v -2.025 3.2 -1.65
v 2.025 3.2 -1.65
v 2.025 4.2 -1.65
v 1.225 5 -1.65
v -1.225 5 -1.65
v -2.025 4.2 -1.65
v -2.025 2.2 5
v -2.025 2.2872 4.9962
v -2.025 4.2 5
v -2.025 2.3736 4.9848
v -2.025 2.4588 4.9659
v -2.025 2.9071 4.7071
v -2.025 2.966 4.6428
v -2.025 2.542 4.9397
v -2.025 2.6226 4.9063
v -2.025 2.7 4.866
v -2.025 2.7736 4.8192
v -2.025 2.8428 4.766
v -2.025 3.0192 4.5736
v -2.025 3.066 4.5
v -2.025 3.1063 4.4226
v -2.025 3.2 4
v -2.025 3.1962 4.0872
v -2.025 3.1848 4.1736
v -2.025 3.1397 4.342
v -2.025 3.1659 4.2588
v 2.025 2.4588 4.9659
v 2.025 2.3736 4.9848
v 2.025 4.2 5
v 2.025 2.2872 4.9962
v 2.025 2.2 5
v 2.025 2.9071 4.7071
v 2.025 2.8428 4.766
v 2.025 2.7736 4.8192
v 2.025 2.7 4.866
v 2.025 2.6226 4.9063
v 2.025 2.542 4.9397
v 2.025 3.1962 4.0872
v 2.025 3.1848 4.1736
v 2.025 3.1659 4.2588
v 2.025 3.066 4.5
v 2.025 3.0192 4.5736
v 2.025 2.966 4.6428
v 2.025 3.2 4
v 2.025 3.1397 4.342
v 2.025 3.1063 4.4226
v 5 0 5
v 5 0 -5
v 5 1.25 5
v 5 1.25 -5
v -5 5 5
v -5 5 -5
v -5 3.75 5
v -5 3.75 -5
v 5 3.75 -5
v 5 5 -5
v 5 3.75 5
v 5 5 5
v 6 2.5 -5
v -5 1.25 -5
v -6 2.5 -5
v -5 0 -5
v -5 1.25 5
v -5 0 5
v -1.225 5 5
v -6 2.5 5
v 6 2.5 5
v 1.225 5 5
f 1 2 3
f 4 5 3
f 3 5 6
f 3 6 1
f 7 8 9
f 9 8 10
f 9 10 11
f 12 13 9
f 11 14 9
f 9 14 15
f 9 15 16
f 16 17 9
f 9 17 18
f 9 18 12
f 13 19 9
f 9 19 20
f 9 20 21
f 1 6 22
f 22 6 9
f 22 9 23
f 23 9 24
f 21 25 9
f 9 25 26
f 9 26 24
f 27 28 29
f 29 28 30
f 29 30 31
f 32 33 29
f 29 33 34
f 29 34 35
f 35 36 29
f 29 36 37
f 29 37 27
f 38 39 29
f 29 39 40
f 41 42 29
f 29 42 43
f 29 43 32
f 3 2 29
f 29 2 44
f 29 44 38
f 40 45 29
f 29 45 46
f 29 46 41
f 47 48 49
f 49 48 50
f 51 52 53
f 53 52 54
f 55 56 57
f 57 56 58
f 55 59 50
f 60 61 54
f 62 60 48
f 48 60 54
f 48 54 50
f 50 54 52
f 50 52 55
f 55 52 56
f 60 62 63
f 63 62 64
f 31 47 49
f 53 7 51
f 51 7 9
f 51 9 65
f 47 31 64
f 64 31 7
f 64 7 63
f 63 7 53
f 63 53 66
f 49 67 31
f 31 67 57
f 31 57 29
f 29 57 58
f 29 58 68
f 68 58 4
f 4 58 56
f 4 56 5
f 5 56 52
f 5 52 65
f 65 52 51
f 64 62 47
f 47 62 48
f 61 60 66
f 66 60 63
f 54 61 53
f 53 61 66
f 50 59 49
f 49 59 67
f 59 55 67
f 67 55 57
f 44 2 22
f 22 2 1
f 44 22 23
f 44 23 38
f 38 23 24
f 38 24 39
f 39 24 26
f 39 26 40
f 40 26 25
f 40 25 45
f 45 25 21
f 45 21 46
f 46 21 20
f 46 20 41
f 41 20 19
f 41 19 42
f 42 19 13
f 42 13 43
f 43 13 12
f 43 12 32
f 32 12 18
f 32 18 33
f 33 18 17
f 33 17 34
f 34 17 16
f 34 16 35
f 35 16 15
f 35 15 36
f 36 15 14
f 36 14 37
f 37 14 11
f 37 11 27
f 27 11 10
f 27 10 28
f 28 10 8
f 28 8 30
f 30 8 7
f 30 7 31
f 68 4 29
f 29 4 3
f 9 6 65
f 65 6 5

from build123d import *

# Parameters (mm, degrees)
SKETCH_1_W          = 10
SKETCH_1_H          = 10
EXTRUDE_1_DEPTH     = 5
EXTRUDE_2_DEPTH     = 10
SKETCH_3_W          = 4.05
SKETCH_3_H          = 3.3
CUT_EXTRUDE_1_DEPTH = 1.8
SKETCH_4_W          = 4.05
SKETCH_4_H          = 1.8
CUT_EXTRUDE_2_DEPTH = 11.257801909
FILLET_1_R          = 1
EXTRUDE_3_DEPTH     = 6.65


with BuildPart() as part:
    # 草图1 → 凸台-拉伸1 (new body)
    with BuildSketch(Plane(origin=(0, 0, 0), x_dir=(1, 0, 0), z_dir=(0, 1, 0))):
        Rectangle(SKETCH_1_W, SKETCH_1_H)
    extrude(amount=EXTRUDE_1_DEPTH)

    # 草图2 → 凸台-拉伸2 (add)
    with BuildSketch(Plane(origin=(0, 0, -5), x_dir=(-1, 0, 0), z_dir=(0, 0, -1))):
        Polygon((5, 1.25), (5, 3.75), (6, 2.5), align=None)
        Polygon((-5, 1.25), (-5, 3.75), (-6, 2.5), align=None)
    extrude(amount=-EXTRUDE_2_DEPTH)

    # 草图3 → 切除-拉伸1 (cut)
    with BuildSketch(Plane(origin=(0, 5, 0), x_dir=(1, 0, 0), z_dir=(0, 1, 0))):
        Rectangle(SKETCH_3_W, SKETCH_3_H)
    extrude(amount=-CUT_EXTRUDE_1_DEPTH, mode=Mode.SUBTRACT)

    # 草图4 → 切除-拉伸2 (cut, through all)
    with BuildSketch(Plane(origin=(0, 0, 1.65), x_dir=(-1, 0, 0), z_dir=(0, 0, -1))):
        with Locations((0, 4.1)):
            Rectangle(SKETCH_4_W, SKETCH_4_H)
    extrude(amount=-CUT_EXTRUDE_2_DEPTH, mode=Mode.SUBTRACT)

    # 圆角1
    fillet_1_edges = [part.edges().sort_by_distance(p)[0] for p in [
        (0, 3.2, 5),
    ]]
    fillet(fillet_1_edges, radius=FILLET_1_R)

    # 草图5 → 凸台-拉伸3 (add)
    with BuildSketch(Plane.XY.offset(-1.65)):
        Polygon((2.025, 5), (2.025, 4.2), (1.225, 5), align=None)
        Polygon((-2.025, 4.2), (-1.225, 5), (-2.025, 5), align=None)
    extrude(amount=EXTRUDE_3_DEPTH)


solid = part.part
